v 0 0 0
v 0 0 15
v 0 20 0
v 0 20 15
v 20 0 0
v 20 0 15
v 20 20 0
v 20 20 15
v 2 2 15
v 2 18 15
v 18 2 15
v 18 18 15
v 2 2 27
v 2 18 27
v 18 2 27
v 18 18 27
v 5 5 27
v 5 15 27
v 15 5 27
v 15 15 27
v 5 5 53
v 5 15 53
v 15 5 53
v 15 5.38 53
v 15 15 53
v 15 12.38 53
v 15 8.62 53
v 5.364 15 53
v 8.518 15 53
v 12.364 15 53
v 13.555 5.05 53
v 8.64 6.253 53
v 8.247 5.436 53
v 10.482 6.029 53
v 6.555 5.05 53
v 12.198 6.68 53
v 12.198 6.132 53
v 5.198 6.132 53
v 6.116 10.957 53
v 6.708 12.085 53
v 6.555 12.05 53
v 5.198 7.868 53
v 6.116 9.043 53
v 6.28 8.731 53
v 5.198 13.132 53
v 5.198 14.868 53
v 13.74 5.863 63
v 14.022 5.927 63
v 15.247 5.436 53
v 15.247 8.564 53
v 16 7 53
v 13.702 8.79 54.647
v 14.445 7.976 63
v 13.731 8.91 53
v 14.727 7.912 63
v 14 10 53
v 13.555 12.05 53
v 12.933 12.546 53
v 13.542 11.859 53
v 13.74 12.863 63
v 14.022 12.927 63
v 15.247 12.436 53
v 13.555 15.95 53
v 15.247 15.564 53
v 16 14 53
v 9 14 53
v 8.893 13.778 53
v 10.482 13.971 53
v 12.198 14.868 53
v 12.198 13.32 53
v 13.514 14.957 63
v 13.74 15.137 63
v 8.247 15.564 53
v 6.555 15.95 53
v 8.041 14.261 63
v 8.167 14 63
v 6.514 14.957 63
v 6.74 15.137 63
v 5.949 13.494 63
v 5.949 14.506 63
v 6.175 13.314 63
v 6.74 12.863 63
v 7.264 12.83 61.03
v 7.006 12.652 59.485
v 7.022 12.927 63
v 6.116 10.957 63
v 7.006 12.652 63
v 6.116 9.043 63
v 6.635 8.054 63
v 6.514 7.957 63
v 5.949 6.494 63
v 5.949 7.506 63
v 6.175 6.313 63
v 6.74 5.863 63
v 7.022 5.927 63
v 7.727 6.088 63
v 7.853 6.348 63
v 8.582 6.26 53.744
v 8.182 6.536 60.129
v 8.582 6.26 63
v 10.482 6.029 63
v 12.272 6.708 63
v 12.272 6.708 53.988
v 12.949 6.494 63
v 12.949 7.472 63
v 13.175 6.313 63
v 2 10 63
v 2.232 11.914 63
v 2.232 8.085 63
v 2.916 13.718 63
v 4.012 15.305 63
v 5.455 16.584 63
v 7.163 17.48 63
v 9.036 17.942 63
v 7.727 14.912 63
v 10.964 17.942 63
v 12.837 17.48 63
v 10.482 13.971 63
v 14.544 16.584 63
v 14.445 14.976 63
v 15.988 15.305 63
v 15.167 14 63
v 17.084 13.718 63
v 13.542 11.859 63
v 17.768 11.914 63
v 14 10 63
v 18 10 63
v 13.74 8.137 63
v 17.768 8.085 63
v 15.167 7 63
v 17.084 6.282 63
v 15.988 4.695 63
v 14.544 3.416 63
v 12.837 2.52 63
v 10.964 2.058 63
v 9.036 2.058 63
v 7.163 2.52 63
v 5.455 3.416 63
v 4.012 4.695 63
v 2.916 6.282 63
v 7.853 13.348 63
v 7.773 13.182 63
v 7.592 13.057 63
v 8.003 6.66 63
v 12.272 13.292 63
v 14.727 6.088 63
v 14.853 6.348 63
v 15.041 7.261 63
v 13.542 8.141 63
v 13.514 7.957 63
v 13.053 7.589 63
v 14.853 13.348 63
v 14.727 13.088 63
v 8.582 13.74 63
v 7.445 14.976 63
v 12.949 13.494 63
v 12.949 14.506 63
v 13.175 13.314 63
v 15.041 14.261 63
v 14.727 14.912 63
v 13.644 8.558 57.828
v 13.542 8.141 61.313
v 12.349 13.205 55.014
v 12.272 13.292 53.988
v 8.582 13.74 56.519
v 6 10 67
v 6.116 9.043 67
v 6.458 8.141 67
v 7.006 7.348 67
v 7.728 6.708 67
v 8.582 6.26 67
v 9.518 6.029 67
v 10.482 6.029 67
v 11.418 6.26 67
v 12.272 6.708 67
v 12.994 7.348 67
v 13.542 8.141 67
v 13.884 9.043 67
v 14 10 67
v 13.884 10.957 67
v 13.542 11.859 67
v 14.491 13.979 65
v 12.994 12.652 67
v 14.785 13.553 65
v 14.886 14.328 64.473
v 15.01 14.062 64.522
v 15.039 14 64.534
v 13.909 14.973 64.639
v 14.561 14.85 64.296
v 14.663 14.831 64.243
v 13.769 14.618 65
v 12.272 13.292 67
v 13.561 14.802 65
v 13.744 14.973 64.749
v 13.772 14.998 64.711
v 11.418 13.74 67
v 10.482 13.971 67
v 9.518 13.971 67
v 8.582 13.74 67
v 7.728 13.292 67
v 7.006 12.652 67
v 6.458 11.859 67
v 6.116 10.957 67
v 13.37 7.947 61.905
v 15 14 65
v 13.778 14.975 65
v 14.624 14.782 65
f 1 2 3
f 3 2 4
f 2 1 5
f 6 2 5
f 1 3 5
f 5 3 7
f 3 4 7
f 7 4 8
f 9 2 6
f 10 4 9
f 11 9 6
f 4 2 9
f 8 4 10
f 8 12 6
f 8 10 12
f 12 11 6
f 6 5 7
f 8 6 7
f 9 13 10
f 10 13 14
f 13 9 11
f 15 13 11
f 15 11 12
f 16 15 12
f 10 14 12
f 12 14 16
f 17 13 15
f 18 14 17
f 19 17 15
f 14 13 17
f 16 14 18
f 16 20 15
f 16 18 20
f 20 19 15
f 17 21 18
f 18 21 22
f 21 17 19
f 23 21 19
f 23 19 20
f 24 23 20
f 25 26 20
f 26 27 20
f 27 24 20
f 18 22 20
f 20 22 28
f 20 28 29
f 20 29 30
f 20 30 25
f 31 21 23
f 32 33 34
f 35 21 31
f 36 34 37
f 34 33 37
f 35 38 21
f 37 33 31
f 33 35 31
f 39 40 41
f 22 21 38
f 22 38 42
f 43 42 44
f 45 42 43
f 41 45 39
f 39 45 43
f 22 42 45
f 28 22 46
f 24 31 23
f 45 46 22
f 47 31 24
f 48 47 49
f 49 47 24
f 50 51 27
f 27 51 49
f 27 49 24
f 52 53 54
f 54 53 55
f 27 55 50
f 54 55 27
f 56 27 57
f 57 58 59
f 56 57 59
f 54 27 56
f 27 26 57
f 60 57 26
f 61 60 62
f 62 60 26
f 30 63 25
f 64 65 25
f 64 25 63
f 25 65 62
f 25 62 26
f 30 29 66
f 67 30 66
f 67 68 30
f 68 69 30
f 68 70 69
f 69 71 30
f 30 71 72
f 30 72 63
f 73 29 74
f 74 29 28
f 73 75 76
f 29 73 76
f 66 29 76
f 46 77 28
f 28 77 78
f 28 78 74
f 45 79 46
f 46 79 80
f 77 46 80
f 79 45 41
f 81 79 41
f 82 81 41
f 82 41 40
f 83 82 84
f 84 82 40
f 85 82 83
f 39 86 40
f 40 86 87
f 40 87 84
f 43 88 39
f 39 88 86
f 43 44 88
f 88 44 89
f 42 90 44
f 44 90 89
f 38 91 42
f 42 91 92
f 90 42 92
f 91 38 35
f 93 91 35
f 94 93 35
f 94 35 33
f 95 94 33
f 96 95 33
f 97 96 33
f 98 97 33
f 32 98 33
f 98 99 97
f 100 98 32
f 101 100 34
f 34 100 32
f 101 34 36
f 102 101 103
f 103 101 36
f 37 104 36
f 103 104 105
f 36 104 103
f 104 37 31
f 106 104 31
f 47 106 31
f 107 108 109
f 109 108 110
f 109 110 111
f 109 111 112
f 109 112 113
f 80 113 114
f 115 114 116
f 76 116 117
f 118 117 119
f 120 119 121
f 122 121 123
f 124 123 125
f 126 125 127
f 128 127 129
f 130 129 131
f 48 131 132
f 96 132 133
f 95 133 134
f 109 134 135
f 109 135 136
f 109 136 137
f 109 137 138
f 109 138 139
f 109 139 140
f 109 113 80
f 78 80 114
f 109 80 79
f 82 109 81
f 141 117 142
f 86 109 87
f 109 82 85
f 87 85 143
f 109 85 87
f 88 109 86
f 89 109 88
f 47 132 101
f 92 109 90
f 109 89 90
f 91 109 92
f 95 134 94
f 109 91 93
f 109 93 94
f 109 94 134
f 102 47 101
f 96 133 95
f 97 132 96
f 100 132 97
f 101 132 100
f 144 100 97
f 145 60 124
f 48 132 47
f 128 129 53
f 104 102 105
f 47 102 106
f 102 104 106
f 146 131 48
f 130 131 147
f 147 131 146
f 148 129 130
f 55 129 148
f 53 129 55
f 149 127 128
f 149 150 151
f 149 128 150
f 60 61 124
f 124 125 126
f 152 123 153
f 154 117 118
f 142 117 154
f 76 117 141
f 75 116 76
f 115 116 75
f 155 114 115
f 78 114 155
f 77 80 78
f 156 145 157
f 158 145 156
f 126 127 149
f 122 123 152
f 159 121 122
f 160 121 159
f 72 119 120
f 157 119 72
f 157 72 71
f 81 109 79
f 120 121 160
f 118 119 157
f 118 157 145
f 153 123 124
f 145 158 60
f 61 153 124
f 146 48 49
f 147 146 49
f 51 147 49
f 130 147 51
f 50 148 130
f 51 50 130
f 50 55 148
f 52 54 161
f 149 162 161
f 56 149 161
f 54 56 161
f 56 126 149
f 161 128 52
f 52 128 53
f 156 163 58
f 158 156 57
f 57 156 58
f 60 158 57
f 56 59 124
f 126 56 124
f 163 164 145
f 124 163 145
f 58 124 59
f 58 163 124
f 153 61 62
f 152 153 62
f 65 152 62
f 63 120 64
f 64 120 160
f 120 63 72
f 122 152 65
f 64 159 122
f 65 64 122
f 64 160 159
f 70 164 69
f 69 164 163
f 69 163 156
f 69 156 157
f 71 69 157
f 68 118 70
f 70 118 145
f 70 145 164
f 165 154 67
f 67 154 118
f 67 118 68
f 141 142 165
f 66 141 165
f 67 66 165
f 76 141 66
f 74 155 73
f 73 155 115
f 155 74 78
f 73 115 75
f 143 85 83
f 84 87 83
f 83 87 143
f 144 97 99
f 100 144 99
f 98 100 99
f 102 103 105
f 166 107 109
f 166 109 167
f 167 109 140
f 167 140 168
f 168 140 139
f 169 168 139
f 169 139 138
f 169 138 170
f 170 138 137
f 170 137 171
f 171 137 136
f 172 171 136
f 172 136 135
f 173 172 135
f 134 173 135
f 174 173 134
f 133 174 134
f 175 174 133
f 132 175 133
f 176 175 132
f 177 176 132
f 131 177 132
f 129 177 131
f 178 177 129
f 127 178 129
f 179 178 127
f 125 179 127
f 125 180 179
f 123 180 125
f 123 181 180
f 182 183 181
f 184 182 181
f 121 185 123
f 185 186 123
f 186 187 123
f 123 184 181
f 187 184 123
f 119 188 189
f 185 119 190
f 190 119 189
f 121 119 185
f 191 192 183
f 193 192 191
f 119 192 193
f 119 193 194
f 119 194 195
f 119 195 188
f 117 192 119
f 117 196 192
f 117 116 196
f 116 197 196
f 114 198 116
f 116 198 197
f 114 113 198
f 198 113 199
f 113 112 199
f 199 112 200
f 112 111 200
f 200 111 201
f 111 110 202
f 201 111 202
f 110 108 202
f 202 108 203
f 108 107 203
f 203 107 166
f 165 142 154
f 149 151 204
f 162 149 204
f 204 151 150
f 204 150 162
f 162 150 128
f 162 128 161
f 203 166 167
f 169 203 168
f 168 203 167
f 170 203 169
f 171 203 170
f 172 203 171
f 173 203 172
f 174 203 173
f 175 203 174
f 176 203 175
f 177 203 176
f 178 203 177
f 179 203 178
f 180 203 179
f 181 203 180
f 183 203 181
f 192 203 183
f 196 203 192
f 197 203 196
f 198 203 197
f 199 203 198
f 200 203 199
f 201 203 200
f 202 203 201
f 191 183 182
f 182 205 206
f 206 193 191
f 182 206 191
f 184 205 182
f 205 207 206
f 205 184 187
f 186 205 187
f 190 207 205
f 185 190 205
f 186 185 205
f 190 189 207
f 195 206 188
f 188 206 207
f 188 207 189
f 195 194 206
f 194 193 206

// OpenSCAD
//Крымский храм маяк,построенный в честь моряков.
//нижняя и средняя комната
cube([20, 20, 15]);
translate([2, 2, 14])cube([16, 16, 13]);
translate([5, 5, 23])cube([10, 10, 30]);
//верхние колонны
translate([7, 7, 53])cylinder(12, 2, 1);
translate([7, 14, 53])cylinder(12, 2, 1);
translate([14, 14, 53])cylinder(12, 2, 1);
translate([14, 7, 53])cylinder(12, 2, 1);
//верхняя башня
translate([10, 10, 67])rotate([180])cylinder(4, 4, 8);
translate([10, 10, 52])cylinder(12, 4, 4);
